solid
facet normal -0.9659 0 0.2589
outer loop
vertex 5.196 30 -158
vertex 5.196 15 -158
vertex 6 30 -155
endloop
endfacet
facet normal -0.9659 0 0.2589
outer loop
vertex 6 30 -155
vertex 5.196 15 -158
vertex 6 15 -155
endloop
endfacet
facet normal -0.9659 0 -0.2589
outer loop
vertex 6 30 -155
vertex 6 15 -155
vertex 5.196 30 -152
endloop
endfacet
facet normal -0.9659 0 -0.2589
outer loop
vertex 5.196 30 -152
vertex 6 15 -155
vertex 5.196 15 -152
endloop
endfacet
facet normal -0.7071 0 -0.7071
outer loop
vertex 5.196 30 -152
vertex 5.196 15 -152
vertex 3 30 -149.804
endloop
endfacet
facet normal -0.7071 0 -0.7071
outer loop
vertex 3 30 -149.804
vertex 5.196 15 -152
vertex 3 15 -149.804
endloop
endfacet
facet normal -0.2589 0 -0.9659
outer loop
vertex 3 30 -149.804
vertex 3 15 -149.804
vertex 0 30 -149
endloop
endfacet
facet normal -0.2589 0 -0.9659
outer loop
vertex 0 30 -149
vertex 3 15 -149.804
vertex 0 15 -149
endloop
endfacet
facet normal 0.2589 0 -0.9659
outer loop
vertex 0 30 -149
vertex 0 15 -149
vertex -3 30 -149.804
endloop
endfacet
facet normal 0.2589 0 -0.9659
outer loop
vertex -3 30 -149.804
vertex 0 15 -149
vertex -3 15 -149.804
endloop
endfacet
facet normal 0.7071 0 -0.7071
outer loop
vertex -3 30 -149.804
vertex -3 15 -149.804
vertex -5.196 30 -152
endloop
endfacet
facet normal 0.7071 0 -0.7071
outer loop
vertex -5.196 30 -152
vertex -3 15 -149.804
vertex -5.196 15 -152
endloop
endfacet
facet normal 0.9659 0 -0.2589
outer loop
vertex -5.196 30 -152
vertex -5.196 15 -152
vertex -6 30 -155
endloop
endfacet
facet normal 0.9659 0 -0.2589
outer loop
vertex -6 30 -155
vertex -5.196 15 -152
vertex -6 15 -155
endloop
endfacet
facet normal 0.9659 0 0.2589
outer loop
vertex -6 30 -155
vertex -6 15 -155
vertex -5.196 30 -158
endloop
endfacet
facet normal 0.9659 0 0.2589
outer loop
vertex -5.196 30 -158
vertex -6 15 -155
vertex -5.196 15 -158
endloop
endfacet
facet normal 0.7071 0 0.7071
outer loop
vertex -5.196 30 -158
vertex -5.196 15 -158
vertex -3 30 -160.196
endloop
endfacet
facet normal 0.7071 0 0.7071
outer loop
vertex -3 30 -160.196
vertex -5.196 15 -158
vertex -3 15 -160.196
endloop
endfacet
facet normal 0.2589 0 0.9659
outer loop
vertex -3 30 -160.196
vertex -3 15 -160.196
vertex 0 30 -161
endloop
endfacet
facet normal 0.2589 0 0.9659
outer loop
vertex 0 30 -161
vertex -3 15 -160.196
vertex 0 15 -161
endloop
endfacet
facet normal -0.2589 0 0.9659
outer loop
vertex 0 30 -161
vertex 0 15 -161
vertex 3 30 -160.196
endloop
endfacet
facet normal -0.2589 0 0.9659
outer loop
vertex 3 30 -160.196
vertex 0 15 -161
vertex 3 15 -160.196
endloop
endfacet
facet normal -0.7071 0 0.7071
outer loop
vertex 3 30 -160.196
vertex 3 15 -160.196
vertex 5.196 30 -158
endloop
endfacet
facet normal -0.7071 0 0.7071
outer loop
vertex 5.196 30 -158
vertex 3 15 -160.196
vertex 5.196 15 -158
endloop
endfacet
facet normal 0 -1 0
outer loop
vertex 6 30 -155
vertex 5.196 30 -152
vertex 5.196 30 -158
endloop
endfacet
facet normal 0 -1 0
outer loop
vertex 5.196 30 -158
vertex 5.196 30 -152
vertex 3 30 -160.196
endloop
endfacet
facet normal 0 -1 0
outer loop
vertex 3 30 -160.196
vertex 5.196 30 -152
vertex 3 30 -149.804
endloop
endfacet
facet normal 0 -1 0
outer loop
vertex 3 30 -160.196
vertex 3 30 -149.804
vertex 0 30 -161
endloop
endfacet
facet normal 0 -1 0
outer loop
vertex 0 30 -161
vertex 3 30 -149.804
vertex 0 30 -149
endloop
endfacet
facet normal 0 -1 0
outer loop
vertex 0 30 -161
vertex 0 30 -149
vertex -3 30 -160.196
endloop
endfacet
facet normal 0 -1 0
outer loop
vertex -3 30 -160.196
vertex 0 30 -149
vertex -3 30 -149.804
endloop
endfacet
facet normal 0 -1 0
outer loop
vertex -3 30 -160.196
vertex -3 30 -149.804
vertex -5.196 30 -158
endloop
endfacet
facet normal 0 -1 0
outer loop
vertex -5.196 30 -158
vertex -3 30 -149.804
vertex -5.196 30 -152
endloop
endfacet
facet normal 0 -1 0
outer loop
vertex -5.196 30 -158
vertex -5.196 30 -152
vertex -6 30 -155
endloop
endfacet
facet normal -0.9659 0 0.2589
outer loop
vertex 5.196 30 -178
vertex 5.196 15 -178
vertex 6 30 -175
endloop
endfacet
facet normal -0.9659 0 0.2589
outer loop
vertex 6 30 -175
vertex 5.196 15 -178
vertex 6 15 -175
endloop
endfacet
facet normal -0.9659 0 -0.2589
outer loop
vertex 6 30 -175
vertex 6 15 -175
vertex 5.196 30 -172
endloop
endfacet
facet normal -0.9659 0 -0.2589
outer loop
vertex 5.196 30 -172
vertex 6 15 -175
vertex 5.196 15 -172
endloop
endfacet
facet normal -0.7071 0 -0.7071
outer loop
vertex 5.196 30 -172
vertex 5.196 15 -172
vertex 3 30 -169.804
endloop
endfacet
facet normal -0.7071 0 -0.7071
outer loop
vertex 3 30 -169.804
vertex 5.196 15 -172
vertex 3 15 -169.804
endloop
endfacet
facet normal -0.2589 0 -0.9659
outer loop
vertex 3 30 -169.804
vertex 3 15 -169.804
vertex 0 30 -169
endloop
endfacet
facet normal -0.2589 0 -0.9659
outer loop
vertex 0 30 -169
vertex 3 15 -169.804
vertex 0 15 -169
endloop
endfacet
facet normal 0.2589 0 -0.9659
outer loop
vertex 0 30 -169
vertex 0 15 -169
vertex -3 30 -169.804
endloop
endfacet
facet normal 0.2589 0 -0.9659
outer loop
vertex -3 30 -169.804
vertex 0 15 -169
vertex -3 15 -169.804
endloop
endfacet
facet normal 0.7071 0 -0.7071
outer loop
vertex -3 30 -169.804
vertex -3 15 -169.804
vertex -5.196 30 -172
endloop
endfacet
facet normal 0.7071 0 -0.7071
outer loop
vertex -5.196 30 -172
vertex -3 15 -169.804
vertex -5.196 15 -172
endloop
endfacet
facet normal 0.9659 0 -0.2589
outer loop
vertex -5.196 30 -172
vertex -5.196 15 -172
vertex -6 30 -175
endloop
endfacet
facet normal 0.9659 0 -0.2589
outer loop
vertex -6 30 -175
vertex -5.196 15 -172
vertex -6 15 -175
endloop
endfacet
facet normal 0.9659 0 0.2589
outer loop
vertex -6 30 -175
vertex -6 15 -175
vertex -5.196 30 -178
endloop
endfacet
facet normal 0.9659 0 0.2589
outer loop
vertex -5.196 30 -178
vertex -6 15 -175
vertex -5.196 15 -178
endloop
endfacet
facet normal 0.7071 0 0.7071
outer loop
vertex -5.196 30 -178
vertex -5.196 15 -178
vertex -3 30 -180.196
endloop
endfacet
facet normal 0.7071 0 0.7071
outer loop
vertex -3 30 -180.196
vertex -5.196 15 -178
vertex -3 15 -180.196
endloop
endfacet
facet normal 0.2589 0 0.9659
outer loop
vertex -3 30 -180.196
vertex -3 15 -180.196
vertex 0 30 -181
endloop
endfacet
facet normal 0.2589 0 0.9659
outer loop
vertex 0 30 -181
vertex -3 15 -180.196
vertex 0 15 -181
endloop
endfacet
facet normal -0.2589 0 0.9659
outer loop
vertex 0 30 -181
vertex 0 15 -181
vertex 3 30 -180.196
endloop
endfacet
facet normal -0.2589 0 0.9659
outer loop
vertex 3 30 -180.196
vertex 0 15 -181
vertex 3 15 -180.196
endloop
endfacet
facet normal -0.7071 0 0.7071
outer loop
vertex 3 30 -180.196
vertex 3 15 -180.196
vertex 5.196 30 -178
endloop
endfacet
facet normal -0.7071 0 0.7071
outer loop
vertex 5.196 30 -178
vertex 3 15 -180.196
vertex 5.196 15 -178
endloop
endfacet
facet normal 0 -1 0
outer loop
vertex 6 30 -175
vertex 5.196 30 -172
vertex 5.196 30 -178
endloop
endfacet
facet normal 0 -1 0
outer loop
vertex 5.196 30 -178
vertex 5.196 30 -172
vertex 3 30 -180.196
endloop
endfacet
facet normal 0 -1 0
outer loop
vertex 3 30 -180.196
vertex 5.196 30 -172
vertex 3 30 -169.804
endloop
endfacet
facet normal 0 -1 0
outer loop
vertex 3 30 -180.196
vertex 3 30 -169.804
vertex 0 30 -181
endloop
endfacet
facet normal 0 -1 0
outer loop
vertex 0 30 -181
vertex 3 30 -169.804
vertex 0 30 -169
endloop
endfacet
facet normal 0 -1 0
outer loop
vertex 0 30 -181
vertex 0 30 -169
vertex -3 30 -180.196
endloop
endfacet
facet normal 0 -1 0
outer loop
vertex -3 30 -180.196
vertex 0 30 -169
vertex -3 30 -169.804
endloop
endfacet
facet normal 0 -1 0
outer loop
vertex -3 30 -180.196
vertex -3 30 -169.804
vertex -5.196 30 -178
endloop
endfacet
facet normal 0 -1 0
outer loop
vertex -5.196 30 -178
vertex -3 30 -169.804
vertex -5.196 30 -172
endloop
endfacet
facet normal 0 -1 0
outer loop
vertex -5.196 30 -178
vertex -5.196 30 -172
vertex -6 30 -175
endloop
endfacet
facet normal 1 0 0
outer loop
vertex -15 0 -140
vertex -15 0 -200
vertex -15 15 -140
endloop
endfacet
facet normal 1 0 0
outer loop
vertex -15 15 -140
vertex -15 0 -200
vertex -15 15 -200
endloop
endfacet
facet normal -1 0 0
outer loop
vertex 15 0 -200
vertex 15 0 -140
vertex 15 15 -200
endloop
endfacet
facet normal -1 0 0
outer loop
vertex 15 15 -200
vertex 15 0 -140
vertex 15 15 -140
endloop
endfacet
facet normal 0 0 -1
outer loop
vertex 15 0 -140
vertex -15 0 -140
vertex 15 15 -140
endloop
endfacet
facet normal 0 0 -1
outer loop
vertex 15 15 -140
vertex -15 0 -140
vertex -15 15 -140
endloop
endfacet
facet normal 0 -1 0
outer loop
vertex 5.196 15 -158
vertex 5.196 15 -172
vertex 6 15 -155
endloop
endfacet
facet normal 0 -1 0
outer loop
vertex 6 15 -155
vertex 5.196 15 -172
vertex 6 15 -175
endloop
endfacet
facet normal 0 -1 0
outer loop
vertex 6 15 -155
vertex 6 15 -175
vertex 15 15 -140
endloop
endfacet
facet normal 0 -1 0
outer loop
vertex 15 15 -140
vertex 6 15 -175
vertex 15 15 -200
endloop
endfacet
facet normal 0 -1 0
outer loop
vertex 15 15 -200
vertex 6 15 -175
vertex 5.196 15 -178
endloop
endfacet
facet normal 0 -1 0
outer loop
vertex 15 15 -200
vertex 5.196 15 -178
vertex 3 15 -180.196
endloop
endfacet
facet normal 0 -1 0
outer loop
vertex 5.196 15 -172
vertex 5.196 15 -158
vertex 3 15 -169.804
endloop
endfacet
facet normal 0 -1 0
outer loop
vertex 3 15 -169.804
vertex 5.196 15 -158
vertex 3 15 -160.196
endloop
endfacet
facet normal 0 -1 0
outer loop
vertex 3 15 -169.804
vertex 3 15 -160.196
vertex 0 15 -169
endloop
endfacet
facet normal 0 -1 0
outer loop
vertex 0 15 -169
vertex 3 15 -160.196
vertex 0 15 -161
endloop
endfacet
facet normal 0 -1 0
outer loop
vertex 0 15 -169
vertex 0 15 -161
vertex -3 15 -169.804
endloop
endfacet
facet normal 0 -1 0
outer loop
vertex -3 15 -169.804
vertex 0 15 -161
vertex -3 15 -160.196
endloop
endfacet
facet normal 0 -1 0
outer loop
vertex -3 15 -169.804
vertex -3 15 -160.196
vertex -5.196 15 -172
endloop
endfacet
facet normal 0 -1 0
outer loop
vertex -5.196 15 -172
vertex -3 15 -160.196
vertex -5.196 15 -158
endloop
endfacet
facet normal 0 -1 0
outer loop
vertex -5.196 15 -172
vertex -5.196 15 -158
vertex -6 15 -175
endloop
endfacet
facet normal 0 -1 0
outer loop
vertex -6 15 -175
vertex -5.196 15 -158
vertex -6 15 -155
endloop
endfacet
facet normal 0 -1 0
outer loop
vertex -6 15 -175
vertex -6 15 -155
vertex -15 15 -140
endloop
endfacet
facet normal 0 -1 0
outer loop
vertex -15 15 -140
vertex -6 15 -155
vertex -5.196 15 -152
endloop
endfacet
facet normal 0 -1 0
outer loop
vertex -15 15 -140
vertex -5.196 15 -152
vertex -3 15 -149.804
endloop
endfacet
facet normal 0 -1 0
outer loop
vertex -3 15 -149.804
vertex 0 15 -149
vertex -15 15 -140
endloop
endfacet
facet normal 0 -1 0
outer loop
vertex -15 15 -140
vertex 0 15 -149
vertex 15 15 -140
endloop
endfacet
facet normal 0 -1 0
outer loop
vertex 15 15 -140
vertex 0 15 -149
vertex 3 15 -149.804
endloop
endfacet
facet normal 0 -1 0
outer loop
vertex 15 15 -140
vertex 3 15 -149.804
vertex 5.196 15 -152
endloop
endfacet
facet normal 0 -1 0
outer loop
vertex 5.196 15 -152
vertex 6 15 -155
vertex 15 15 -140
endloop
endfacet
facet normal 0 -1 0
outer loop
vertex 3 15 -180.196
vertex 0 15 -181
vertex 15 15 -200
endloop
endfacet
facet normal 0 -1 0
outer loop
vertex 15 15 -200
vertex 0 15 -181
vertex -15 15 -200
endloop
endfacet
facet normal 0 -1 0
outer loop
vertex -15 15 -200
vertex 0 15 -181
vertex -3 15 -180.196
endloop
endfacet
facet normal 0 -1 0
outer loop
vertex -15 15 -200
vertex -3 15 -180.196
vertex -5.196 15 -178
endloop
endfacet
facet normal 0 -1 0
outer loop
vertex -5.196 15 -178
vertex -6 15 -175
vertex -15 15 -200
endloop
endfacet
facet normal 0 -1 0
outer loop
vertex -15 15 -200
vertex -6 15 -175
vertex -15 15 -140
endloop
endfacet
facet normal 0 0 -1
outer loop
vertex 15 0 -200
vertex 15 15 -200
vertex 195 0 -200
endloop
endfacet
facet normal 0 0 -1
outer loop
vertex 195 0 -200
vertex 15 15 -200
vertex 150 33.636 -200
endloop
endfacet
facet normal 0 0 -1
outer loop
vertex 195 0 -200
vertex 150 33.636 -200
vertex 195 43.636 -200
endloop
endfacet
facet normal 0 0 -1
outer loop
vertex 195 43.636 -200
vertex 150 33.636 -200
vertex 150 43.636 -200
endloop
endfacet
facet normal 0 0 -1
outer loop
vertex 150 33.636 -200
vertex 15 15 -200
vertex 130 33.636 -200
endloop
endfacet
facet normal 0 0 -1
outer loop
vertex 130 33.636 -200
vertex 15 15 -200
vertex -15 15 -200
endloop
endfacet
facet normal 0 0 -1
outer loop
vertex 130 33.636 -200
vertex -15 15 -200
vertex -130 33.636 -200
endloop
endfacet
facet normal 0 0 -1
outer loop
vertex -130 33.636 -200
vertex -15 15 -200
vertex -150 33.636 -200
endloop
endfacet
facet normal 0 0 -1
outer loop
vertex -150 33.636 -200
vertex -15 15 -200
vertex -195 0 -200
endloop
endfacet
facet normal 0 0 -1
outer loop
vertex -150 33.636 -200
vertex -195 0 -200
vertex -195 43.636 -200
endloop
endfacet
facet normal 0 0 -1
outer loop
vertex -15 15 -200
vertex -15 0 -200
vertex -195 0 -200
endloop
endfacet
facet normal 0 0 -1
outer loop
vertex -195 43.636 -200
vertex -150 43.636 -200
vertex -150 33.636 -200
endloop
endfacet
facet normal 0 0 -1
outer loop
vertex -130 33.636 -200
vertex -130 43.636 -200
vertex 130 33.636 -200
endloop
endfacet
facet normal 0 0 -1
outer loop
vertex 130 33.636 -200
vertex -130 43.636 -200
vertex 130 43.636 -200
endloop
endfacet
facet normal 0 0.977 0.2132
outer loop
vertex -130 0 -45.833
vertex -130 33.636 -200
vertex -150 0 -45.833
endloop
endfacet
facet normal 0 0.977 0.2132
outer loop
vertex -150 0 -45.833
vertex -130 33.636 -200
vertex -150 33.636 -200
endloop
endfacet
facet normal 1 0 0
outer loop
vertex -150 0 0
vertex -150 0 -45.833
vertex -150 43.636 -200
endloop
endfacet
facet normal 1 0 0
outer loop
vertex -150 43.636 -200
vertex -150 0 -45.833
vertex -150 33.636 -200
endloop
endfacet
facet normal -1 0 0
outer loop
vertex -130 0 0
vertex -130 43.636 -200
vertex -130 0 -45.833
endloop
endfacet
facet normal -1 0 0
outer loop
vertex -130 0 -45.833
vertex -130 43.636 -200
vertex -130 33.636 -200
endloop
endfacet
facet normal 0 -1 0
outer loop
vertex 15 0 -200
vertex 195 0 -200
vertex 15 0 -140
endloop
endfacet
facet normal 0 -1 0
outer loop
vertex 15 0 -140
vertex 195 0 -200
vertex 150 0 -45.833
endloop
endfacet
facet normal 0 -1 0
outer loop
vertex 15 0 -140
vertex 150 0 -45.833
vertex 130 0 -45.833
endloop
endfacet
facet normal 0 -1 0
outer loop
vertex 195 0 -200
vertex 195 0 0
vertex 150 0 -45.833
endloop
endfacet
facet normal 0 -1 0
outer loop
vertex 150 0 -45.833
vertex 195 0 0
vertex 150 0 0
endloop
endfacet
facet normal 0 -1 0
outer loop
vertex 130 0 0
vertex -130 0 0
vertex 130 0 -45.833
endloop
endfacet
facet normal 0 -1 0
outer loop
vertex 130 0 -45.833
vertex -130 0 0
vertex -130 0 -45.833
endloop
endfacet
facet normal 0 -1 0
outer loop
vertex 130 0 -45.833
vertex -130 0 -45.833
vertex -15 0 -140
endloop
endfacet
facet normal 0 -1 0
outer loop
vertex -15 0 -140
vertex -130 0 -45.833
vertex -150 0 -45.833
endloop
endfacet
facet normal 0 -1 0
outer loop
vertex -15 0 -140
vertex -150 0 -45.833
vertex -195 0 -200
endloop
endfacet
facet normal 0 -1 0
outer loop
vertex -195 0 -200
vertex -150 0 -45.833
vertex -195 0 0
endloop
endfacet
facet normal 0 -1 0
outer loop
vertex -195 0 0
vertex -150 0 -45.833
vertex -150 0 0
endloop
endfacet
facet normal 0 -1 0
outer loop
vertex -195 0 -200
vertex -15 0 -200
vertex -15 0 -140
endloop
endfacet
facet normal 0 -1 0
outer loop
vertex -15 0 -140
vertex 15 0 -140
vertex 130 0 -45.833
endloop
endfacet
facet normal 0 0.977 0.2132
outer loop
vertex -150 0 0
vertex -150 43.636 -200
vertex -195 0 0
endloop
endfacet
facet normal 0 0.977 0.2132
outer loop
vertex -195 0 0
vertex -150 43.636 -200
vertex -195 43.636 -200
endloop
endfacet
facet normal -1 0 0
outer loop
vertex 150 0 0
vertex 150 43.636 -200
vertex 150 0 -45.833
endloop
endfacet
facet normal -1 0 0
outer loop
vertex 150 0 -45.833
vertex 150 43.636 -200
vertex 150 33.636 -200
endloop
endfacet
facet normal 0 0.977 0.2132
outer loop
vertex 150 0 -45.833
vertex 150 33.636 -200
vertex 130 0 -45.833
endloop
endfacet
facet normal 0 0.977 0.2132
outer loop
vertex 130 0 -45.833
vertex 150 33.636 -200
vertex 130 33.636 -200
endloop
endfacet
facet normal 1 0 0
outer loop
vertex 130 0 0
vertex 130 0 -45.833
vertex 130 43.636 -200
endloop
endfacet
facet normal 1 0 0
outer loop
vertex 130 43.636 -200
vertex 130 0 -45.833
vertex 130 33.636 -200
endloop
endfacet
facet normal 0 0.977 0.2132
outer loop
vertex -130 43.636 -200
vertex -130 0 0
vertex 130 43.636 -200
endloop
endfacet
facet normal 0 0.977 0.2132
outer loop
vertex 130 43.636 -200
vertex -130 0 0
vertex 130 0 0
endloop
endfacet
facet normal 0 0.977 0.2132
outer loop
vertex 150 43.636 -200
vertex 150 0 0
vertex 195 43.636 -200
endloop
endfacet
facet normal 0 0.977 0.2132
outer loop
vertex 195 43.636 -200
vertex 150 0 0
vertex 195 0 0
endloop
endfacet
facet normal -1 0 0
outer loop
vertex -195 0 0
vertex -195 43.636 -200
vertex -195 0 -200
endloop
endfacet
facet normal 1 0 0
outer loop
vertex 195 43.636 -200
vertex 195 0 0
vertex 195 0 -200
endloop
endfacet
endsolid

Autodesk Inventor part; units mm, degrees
ref_plane "YZ Plane" through (0, 0, 0) normal (1, 0, 0) x (0, 1, 0)
ref_plane "XZ Plane" through (0, 0, 0) normal (0, 1, 0) x (-1, 0, 0)
ref_plane "XY Plane" through (0, 0, 0) normal (0, 0, 1) x (1, 0, 0)
sketch "草图2" plane through (0, 0, 0) normal (1, 0, 0) x (0, 1, 0)
  line L0 (120, -550) -> (0, 0)
  line L1 (0, 0) -> (0, -550)
  line L2 (0, -550) -> (120, -550)
  line L3 (43.6364, -200) -> (0, -200)
  dimension "d0" = 120
  dimension "d1" = 550
  dimension "d2" = 200
extrude "拉伸1" add sketch "草图2" along normal mid plane 390 contours L3 L1 L0
sketch "草图3" plane through (-195, 0, 0) normal (0, 0.9770158, 0.2131671) x (1, 0, 0)
  line L0 (0, 0) -> (390, 0) projected
  line L1 (390, 204.705) -> (0, 204.705) projected
  line L2 (325, 0) -> (345, 0)
  line L3 (345, 0) -> (345, 204.705)
  line L4 (345, 204.705) -> (325, 204.705)
  line L5 (325, 204.705) -> (325, 0)
  line L6 (390, 204.705) -> (390, 0) projected
  point P0 (195, 0)
  dimension "d5" = 20
  dimension "d6" = 45
sketch "草图4" plane through (195, 43.6364, -200) normal (0, 0, -1) x (-1, 0, 0)
  line L0 (45, 0) -> (45, -10)
  point P0 (195, -43.6364)
  dimension "d8" = 10
sweep "扫掠1" cut profiles "草图3" path "草图4" contours L5 L1 L3 L0
mirror "镜像1" about plane through (0, 0, 0) normal (1, 0, 0) of "扫掠1"
sketch "草图5" plane through (-195, 0, -200) normal (0, -1, 0) x (1, 0, 0)
  line L0 (195, -50) -> (195, 300) projected
  line L1 (0, 0) -> (390, 0) projected
  line L2 (210, 0) -> (180, 0)
  line L3 (180, 0) -> (180, 60)
  line L4 (180, 60) -> (210, 60)
  line L5 (210, 60) -> (210, 0)
  point P0 (195, 200)
  point P1 (180, 0)
  dimension "d11" = 60
  dimension "d12" = 30
extrude "拉伸2" cut sketch "草图5" against normal blind 15
sketch "草图6" plane through (-195, 15, -200) normal (0, -1, 0) x (1, 0, 0)
  line L0 (210, 0) -> (180, 0) projected
  line L1 (180, 60) -> (210, 60) projected
  line L2 (180, 0) -> (180, 60) projected
  line L3 (210, 0) -> (180, 0) projected
  line L4 (210, 60) -> (210, 0) projected
  line L5 (195, -11.4626) -> (195, 50.2539)
  circle A0 centre (195, 25) radius 6
  circle A1 centre (195, 45) radius 6
  point P0 (195, 200)
  dimension "d15" = 30
  dimension "d16" = 12
  dimension "d17" = 12
  dimension "d18" = 20
  dimension "d19" = 25
extrude "拉伸3" cut sketch "草图6" against normal blind 15 contours A0 L5 | L5 A0 | A1
thread "螺纹1"
thread "螺纹2"
properties part number "猫砂盆底座"
